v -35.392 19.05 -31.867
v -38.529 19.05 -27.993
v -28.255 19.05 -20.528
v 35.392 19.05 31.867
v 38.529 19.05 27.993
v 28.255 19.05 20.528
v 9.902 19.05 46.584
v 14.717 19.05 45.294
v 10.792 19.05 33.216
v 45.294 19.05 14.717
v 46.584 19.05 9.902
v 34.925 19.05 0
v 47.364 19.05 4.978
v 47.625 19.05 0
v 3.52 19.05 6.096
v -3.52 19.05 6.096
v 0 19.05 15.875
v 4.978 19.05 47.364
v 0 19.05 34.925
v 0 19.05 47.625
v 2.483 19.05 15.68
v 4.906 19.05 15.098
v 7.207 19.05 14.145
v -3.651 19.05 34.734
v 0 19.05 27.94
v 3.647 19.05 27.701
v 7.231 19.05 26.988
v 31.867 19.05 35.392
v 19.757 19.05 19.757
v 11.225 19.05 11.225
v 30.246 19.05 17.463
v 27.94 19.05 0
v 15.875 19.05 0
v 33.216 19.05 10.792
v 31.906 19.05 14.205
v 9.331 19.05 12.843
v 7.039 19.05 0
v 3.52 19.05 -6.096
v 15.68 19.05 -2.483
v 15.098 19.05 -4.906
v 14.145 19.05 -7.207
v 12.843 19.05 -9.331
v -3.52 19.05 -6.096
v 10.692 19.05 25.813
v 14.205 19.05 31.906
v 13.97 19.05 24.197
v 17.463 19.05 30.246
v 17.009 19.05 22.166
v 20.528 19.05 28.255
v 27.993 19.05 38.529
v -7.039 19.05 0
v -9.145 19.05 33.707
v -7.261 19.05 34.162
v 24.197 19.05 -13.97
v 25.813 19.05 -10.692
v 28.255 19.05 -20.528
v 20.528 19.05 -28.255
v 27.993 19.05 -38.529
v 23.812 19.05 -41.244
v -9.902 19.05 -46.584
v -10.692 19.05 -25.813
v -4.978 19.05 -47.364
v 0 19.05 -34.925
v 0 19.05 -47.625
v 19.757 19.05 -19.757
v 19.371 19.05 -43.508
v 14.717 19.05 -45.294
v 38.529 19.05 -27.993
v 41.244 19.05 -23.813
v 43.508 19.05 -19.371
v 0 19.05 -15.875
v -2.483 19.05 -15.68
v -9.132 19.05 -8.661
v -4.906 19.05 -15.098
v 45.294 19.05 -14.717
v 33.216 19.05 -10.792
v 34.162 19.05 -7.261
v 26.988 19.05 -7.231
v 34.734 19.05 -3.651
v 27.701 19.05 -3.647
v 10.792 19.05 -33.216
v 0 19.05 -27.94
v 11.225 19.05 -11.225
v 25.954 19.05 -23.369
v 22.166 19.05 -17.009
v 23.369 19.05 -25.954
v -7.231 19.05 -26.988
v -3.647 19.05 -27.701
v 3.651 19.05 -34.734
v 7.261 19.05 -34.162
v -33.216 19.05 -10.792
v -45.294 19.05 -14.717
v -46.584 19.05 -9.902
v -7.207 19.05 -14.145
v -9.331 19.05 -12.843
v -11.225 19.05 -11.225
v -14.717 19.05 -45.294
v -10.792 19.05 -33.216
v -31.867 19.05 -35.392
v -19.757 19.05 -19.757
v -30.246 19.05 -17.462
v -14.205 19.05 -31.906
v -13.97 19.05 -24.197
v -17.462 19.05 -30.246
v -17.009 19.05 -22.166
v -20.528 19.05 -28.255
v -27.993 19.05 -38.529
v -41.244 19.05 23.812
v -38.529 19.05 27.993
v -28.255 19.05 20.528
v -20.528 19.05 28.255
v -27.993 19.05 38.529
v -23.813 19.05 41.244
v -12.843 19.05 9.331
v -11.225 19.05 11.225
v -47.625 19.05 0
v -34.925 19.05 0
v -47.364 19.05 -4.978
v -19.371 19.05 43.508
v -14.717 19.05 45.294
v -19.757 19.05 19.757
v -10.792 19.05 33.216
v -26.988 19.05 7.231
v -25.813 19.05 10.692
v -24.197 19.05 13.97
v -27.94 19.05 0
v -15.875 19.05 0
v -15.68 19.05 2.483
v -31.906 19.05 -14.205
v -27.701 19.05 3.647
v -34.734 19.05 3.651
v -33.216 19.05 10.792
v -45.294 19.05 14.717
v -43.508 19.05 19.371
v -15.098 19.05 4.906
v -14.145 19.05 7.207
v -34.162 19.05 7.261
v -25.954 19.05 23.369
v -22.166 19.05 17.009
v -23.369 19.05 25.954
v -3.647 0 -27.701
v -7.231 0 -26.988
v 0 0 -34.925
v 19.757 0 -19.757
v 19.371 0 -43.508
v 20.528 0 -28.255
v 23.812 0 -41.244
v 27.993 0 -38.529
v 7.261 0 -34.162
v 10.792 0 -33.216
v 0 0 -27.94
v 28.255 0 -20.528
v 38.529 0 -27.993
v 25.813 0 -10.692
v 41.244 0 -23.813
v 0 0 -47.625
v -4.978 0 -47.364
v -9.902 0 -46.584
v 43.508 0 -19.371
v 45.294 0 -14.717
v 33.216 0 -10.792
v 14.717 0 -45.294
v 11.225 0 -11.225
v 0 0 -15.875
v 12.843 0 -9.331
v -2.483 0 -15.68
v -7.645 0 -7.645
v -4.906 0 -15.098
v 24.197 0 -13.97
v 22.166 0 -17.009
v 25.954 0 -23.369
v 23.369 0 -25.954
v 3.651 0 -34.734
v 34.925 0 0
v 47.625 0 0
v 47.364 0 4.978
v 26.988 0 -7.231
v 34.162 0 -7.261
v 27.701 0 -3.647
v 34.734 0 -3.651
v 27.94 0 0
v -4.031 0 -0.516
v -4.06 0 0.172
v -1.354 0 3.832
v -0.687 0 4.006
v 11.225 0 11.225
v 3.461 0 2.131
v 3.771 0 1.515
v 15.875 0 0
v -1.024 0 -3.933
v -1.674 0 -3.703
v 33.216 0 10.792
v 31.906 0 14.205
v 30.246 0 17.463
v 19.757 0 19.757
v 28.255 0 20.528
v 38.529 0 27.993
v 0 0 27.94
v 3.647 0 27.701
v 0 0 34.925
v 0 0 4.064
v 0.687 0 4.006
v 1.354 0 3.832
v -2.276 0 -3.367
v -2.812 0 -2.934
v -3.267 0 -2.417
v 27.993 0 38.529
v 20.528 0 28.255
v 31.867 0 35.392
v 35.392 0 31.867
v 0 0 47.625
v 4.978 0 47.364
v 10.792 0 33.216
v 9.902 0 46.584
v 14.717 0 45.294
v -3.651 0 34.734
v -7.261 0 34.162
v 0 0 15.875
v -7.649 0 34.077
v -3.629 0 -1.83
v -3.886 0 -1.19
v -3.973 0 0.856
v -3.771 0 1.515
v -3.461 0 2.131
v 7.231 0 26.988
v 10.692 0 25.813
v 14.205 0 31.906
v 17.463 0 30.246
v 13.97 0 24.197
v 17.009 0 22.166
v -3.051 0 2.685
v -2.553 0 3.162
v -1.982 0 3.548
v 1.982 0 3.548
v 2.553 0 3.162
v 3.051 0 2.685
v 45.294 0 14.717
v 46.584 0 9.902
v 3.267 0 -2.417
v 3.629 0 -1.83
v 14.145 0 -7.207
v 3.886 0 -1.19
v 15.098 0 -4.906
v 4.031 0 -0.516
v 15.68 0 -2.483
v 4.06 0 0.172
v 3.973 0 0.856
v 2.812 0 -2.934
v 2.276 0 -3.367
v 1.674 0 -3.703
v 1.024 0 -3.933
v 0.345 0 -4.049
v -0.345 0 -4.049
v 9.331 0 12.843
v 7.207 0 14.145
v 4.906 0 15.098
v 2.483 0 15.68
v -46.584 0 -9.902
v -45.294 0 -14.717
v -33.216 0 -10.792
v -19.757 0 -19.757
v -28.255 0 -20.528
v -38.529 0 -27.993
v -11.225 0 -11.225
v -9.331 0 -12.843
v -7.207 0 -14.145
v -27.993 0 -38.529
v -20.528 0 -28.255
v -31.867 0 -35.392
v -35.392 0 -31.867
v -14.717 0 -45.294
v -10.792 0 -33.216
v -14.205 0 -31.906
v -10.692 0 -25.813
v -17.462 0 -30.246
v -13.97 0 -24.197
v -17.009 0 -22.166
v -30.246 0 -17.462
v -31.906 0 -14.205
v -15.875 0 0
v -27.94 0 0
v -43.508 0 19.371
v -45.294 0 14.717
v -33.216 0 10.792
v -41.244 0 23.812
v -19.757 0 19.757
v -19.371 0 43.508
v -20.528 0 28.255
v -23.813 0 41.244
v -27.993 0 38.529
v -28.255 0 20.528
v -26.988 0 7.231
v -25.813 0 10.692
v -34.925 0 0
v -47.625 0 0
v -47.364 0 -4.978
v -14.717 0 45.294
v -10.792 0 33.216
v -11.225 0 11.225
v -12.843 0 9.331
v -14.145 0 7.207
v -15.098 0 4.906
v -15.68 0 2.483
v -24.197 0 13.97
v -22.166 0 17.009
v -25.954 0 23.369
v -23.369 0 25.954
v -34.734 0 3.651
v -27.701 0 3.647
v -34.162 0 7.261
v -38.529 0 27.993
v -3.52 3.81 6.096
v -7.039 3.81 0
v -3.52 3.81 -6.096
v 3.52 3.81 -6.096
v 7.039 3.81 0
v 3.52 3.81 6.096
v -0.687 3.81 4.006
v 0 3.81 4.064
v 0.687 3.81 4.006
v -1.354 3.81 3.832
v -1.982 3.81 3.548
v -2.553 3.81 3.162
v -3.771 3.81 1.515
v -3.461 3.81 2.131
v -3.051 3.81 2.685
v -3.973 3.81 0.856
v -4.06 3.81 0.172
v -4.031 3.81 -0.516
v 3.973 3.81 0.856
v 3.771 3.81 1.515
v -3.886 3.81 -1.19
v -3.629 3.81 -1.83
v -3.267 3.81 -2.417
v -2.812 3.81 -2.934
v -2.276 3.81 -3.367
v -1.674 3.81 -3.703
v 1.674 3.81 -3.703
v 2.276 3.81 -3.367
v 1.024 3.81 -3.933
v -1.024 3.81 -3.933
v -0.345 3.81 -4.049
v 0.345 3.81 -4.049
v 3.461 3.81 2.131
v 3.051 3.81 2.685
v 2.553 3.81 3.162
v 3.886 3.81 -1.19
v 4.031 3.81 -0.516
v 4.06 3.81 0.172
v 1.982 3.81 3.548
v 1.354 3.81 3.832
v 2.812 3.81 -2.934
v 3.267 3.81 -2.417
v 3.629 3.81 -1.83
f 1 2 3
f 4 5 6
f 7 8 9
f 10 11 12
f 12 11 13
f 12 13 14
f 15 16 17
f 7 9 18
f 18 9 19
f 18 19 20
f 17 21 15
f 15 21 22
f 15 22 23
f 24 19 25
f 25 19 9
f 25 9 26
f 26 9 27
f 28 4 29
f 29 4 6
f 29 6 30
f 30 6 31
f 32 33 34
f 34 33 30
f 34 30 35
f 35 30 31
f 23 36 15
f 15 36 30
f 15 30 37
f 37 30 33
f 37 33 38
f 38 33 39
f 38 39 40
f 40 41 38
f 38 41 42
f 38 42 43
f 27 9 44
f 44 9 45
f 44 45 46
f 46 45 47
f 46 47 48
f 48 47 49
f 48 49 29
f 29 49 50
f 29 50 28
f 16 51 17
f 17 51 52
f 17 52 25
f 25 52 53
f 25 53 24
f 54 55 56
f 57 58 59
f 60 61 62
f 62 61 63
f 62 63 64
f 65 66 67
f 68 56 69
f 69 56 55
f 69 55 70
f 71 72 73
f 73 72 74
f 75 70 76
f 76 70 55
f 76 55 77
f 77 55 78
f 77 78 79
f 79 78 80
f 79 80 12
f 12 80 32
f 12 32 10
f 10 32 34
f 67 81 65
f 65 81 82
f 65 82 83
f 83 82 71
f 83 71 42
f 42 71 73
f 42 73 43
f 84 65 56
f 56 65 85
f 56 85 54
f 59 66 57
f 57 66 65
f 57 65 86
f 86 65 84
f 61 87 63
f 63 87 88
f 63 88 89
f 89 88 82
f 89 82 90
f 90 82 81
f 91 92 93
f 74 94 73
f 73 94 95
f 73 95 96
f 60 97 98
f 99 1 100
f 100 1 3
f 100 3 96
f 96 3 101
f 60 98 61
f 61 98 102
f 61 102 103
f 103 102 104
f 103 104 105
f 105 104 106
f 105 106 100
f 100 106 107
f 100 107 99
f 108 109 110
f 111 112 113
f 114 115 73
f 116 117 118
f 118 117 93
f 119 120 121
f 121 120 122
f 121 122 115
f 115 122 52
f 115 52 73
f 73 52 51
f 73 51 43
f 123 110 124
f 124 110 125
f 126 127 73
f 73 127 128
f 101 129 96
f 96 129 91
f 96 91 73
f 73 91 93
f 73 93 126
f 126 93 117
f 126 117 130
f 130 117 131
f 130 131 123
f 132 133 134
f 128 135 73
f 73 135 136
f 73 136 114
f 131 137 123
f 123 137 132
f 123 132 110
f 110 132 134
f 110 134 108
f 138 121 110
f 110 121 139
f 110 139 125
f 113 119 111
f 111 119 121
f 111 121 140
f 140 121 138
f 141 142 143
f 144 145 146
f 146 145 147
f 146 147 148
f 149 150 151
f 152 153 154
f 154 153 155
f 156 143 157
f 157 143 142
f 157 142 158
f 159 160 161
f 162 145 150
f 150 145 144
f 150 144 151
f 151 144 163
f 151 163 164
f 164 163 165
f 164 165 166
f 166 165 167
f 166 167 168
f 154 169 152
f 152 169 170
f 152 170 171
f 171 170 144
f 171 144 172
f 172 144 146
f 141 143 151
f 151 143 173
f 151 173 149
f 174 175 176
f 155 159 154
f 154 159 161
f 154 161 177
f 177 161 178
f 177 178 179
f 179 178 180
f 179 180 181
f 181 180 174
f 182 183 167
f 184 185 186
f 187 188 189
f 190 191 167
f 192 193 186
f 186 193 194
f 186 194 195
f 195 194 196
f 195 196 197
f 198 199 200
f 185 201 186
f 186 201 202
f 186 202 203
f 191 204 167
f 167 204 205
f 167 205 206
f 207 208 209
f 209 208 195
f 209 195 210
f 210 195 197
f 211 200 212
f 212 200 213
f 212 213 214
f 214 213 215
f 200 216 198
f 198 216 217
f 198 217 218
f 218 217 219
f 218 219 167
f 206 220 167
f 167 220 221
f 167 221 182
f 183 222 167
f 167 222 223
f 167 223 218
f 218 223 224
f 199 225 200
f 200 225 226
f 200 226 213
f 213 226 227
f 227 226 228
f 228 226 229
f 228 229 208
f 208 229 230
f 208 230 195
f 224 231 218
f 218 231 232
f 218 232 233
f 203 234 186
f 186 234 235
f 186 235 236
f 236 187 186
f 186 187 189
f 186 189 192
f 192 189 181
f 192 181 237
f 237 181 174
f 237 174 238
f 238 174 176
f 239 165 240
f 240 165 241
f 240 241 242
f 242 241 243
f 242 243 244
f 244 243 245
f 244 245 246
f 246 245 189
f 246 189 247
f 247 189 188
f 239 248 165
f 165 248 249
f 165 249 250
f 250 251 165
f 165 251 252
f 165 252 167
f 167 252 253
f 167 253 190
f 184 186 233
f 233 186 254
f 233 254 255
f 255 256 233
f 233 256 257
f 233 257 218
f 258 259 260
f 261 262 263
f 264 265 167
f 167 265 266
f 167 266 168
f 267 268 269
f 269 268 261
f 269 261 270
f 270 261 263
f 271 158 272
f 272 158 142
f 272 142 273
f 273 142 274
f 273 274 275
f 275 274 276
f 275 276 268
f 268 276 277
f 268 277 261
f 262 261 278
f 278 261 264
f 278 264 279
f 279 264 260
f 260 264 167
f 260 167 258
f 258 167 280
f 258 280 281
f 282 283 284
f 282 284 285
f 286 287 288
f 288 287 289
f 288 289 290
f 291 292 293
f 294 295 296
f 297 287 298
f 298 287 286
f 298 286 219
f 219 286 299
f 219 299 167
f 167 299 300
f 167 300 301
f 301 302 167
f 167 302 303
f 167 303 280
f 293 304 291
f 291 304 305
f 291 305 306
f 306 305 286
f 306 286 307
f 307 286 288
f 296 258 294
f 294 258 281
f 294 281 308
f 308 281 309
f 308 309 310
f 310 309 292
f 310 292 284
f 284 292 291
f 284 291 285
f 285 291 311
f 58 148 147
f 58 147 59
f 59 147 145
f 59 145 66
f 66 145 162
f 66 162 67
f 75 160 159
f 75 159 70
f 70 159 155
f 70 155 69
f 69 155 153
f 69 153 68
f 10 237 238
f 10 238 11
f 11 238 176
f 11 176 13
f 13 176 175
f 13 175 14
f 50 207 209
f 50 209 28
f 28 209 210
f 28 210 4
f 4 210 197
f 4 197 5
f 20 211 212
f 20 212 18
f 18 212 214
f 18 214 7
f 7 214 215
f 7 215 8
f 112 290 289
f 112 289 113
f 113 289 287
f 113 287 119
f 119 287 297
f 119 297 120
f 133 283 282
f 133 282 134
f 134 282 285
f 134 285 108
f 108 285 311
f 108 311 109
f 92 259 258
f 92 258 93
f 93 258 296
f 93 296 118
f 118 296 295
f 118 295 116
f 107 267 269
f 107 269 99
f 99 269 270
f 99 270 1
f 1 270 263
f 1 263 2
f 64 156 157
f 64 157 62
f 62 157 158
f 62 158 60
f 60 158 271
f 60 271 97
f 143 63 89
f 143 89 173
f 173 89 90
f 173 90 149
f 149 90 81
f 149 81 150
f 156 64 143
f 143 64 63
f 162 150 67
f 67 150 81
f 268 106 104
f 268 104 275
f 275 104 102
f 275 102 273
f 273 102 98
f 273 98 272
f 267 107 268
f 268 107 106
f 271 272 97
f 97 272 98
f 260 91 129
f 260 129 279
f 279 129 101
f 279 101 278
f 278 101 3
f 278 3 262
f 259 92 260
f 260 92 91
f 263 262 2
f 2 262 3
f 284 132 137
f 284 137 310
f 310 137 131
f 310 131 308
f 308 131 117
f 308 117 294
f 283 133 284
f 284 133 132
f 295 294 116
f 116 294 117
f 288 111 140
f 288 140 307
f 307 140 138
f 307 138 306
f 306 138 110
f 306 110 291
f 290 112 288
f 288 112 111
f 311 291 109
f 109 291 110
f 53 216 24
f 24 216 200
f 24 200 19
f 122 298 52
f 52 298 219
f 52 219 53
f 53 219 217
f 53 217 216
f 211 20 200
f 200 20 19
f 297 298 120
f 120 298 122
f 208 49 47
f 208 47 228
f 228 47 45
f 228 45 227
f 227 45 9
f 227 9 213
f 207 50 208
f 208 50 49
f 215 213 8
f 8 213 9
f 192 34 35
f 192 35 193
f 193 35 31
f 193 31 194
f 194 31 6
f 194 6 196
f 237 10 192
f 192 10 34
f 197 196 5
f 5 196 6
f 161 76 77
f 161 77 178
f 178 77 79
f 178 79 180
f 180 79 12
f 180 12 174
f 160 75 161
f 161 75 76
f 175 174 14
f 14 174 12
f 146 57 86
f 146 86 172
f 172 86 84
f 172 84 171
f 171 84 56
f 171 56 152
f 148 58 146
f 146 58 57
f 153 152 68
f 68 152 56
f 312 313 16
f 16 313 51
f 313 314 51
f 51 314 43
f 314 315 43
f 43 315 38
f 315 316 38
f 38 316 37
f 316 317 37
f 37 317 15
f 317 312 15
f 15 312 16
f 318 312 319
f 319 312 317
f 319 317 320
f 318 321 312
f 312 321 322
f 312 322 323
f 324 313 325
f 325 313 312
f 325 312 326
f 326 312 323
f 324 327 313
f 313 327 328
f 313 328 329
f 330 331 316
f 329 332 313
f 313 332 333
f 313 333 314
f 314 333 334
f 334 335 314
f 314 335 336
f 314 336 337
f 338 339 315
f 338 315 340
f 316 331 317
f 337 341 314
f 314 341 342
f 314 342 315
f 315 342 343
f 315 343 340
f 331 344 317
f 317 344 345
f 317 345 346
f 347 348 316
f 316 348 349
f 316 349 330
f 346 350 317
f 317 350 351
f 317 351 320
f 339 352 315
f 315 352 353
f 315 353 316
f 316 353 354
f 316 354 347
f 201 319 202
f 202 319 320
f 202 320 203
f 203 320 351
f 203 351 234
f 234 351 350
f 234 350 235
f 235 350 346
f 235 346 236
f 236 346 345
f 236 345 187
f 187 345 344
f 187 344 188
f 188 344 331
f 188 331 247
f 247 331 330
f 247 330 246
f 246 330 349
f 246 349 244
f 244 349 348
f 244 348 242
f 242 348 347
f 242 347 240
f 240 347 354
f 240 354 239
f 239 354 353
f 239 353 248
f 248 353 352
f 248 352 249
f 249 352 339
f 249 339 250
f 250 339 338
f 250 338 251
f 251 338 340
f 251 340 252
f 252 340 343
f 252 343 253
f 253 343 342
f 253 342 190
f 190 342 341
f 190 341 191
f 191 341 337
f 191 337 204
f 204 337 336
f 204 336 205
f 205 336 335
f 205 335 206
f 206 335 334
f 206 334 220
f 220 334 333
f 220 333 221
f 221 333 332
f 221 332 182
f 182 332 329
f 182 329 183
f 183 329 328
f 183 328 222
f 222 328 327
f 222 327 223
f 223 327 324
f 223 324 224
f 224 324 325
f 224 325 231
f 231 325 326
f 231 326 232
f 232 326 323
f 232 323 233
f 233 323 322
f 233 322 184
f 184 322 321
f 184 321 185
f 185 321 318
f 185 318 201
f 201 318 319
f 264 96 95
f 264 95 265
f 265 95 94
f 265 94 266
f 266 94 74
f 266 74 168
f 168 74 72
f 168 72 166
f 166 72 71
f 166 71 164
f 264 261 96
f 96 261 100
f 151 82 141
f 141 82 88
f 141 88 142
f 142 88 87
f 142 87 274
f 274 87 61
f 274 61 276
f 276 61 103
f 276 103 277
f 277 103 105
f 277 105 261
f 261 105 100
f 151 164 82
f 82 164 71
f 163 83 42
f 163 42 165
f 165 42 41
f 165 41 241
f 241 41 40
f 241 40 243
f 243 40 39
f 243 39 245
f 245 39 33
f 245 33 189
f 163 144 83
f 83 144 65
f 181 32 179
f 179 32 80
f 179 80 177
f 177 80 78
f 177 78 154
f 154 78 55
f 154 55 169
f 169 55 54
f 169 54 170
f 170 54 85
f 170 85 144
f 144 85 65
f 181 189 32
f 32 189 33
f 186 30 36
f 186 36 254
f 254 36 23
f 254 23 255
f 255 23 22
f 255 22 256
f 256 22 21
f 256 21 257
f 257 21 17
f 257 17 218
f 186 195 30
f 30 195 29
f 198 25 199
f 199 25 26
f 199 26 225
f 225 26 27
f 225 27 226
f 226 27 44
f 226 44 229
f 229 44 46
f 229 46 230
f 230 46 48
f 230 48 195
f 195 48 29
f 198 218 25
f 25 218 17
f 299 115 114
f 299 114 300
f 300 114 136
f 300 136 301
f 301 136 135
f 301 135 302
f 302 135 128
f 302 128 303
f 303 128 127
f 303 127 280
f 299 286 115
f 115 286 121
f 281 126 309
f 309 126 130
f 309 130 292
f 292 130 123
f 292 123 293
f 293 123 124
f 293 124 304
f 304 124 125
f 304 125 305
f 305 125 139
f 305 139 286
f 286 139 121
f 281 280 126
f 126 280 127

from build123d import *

# Parameters (mm, degrees)
SKETCH1_R           = 47.625
BOSS_EXTRUDE1_DEPTH = 19.05
CUT_EXTRUDE1_DEPTH  = 70.9941694
CIRPATTERN1_COUNT   = 10
CUT_EXTRUDE2_DEPTH  = 15.24
SKETCH5_R           = 4.064
CUT_EXTRUDE3_DEPTH  = 70.054607739
CUT_EXTRUDE4_DEPTH  = 70.9941694


with BuildPart() as part:
    # Sketch1 → Boss-Extrude1 (new body)
    with BuildSketch(Plane(origin=(0, 0, 0), x_dir=(1, 0, 0), z_dir=(0, 1, 0))):
        with Locations(Location((0, 0, 0), (0, 0, 90))):
            Circle(SKETCH1_R)
    extrude(amount=BOSS_EXTRUDE1_DEPTH)

    # Sketch3 → Cut-Extrude1 (cut, symmetric)
    with BuildSketch(Plane(origin=(0, 19.05, 0), x_dir=(1, 0, 0), z_dir=(0, 1, 0))):
        with BuildLine():
            Line((0, 47.625), (0, 34.925))
            ThreePointArc((0, 34.925), (5.463473692, 34.495015295), (10.792418529, 33.215648832))
            Line((10.792418529, 33.215648832), (14.716934357, 45.294066589))
            ThreePointArc((14.716934357, 45.294066589), (7.450191398, 47.038657221), (0, 47.625))
        make_face()
    cut_extrude1 = extrude(amount=CUT_EXTRUDE1_DEPTH, both=True, mode=Mode.SUBTRACT)

    # CirPattern1: Cut-Extrude1 ×10 about axis
    cirpattern1_axis = Axis((0, 0, 0), (0, 1, 0))
    for i in range(1, CIRPATTERN1_COUNT):
        add(cut_extrude1.rotate(cirpattern1_axis, i * 360 / CIRPATTERN1_COUNT), mode=Mode.SUBTRACT)

    # Sketch4 → Cut-Extrude2 (cut)
    with BuildSketch(Plane(origin=(0, 19.05, 0), x_dir=(1, 0, 0), z_dir=(0, 1, 0))):
        Polygon((-3.519527241, 6.096), (3.519527241, 6.096), (7.039054482, 0), (3.519527241, -6.096), (-3.519527241, -6.096), (-7.039054482, 0), align=None)
    extrude(amount=-CUT_EXTRUDE2_DEPTH, mode=Mode.SUBTRACT)

    # Sketch5 → Cut-Extrude3 (cut, through all)
    with BuildSketch(Plane(origin=(0, 3.81, 0), x_dir=(1, 0, 0), z_dir=(0, 1, 0))):
        with Locations(Location((0, 0, 0), (0, 0, 270))):
            Circle(SKETCH5_R)
    extrude(amount=-CUT_EXTRUDE3_DEPTH, mode=Mode.SUBTRACT)

    # Sketch6 → Cut-Extrude4 (cut, through all)
    with BuildSketch(Plane(origin=(0, 19.05, 0), x_dir=(1, 0, 0), z_dir=(0, 1, 0))):
        with BuildLine():
            ThreePointArc((-11.225320151, 11.225320151), (-6.075099489, 14.666587579), (0, 15.875))
            Line((0, 15.875), (0, 27.94))
            ThreePointArc((0, 27.94), (-10.6921751, 25.813194138), (-19.756563466, 19.756563466))
            Line((-19.756563466, 19.756563466), (-11.225320151, 11.225320151))
        make_face()
        with BuildLine():
            Line((19.756563466, 19.756563466), (11.225320151, 11.225320151))
            ThreePointArc((11.225320151, 11.225320151), (14.666587579, 6.075099489), (15.875, 0))
            Line((15.875, 0), (27.94, 0))
            ThreePointArc((27.94, 0), (25.813194138, 10.6921751), (19.756563466, 19.756563466))
        make_face()
        with BuildLine():
            Line((19.756563466, -19.756563466), (11.225320151, -11.225320151))
            ThreePointArc((11.225320151, -11.225320151), (6.075099489, -14.666587579), (0, -15.875))
            Line((0, -15.875), (0, -27.94))
            ThreePointArc((0, -27.94), (10.6921751, -25.813194138), (19.756563466, -19.756563466))
        make_face()
        with BuildLine():
            Line((-19.756563466, -19.756563466), (-11.225320151, -11.225320151))
            ThreePointArc((-11.225320151, -11.225320151), (-14.666587579, -6.075099489), (-15.875, 0))
            Line((-15.875, 0), (-27.94, 0))
            ThreePointArc((-27.94, 0), (-25.813194138, -10.6921751), (-19.756563466, -19.756563466))
        make_face()
    extrude(amount=-CUT_EXTRUDE4_DEPTH, mode=Mode.SUBTRACT)


solid = part.part
